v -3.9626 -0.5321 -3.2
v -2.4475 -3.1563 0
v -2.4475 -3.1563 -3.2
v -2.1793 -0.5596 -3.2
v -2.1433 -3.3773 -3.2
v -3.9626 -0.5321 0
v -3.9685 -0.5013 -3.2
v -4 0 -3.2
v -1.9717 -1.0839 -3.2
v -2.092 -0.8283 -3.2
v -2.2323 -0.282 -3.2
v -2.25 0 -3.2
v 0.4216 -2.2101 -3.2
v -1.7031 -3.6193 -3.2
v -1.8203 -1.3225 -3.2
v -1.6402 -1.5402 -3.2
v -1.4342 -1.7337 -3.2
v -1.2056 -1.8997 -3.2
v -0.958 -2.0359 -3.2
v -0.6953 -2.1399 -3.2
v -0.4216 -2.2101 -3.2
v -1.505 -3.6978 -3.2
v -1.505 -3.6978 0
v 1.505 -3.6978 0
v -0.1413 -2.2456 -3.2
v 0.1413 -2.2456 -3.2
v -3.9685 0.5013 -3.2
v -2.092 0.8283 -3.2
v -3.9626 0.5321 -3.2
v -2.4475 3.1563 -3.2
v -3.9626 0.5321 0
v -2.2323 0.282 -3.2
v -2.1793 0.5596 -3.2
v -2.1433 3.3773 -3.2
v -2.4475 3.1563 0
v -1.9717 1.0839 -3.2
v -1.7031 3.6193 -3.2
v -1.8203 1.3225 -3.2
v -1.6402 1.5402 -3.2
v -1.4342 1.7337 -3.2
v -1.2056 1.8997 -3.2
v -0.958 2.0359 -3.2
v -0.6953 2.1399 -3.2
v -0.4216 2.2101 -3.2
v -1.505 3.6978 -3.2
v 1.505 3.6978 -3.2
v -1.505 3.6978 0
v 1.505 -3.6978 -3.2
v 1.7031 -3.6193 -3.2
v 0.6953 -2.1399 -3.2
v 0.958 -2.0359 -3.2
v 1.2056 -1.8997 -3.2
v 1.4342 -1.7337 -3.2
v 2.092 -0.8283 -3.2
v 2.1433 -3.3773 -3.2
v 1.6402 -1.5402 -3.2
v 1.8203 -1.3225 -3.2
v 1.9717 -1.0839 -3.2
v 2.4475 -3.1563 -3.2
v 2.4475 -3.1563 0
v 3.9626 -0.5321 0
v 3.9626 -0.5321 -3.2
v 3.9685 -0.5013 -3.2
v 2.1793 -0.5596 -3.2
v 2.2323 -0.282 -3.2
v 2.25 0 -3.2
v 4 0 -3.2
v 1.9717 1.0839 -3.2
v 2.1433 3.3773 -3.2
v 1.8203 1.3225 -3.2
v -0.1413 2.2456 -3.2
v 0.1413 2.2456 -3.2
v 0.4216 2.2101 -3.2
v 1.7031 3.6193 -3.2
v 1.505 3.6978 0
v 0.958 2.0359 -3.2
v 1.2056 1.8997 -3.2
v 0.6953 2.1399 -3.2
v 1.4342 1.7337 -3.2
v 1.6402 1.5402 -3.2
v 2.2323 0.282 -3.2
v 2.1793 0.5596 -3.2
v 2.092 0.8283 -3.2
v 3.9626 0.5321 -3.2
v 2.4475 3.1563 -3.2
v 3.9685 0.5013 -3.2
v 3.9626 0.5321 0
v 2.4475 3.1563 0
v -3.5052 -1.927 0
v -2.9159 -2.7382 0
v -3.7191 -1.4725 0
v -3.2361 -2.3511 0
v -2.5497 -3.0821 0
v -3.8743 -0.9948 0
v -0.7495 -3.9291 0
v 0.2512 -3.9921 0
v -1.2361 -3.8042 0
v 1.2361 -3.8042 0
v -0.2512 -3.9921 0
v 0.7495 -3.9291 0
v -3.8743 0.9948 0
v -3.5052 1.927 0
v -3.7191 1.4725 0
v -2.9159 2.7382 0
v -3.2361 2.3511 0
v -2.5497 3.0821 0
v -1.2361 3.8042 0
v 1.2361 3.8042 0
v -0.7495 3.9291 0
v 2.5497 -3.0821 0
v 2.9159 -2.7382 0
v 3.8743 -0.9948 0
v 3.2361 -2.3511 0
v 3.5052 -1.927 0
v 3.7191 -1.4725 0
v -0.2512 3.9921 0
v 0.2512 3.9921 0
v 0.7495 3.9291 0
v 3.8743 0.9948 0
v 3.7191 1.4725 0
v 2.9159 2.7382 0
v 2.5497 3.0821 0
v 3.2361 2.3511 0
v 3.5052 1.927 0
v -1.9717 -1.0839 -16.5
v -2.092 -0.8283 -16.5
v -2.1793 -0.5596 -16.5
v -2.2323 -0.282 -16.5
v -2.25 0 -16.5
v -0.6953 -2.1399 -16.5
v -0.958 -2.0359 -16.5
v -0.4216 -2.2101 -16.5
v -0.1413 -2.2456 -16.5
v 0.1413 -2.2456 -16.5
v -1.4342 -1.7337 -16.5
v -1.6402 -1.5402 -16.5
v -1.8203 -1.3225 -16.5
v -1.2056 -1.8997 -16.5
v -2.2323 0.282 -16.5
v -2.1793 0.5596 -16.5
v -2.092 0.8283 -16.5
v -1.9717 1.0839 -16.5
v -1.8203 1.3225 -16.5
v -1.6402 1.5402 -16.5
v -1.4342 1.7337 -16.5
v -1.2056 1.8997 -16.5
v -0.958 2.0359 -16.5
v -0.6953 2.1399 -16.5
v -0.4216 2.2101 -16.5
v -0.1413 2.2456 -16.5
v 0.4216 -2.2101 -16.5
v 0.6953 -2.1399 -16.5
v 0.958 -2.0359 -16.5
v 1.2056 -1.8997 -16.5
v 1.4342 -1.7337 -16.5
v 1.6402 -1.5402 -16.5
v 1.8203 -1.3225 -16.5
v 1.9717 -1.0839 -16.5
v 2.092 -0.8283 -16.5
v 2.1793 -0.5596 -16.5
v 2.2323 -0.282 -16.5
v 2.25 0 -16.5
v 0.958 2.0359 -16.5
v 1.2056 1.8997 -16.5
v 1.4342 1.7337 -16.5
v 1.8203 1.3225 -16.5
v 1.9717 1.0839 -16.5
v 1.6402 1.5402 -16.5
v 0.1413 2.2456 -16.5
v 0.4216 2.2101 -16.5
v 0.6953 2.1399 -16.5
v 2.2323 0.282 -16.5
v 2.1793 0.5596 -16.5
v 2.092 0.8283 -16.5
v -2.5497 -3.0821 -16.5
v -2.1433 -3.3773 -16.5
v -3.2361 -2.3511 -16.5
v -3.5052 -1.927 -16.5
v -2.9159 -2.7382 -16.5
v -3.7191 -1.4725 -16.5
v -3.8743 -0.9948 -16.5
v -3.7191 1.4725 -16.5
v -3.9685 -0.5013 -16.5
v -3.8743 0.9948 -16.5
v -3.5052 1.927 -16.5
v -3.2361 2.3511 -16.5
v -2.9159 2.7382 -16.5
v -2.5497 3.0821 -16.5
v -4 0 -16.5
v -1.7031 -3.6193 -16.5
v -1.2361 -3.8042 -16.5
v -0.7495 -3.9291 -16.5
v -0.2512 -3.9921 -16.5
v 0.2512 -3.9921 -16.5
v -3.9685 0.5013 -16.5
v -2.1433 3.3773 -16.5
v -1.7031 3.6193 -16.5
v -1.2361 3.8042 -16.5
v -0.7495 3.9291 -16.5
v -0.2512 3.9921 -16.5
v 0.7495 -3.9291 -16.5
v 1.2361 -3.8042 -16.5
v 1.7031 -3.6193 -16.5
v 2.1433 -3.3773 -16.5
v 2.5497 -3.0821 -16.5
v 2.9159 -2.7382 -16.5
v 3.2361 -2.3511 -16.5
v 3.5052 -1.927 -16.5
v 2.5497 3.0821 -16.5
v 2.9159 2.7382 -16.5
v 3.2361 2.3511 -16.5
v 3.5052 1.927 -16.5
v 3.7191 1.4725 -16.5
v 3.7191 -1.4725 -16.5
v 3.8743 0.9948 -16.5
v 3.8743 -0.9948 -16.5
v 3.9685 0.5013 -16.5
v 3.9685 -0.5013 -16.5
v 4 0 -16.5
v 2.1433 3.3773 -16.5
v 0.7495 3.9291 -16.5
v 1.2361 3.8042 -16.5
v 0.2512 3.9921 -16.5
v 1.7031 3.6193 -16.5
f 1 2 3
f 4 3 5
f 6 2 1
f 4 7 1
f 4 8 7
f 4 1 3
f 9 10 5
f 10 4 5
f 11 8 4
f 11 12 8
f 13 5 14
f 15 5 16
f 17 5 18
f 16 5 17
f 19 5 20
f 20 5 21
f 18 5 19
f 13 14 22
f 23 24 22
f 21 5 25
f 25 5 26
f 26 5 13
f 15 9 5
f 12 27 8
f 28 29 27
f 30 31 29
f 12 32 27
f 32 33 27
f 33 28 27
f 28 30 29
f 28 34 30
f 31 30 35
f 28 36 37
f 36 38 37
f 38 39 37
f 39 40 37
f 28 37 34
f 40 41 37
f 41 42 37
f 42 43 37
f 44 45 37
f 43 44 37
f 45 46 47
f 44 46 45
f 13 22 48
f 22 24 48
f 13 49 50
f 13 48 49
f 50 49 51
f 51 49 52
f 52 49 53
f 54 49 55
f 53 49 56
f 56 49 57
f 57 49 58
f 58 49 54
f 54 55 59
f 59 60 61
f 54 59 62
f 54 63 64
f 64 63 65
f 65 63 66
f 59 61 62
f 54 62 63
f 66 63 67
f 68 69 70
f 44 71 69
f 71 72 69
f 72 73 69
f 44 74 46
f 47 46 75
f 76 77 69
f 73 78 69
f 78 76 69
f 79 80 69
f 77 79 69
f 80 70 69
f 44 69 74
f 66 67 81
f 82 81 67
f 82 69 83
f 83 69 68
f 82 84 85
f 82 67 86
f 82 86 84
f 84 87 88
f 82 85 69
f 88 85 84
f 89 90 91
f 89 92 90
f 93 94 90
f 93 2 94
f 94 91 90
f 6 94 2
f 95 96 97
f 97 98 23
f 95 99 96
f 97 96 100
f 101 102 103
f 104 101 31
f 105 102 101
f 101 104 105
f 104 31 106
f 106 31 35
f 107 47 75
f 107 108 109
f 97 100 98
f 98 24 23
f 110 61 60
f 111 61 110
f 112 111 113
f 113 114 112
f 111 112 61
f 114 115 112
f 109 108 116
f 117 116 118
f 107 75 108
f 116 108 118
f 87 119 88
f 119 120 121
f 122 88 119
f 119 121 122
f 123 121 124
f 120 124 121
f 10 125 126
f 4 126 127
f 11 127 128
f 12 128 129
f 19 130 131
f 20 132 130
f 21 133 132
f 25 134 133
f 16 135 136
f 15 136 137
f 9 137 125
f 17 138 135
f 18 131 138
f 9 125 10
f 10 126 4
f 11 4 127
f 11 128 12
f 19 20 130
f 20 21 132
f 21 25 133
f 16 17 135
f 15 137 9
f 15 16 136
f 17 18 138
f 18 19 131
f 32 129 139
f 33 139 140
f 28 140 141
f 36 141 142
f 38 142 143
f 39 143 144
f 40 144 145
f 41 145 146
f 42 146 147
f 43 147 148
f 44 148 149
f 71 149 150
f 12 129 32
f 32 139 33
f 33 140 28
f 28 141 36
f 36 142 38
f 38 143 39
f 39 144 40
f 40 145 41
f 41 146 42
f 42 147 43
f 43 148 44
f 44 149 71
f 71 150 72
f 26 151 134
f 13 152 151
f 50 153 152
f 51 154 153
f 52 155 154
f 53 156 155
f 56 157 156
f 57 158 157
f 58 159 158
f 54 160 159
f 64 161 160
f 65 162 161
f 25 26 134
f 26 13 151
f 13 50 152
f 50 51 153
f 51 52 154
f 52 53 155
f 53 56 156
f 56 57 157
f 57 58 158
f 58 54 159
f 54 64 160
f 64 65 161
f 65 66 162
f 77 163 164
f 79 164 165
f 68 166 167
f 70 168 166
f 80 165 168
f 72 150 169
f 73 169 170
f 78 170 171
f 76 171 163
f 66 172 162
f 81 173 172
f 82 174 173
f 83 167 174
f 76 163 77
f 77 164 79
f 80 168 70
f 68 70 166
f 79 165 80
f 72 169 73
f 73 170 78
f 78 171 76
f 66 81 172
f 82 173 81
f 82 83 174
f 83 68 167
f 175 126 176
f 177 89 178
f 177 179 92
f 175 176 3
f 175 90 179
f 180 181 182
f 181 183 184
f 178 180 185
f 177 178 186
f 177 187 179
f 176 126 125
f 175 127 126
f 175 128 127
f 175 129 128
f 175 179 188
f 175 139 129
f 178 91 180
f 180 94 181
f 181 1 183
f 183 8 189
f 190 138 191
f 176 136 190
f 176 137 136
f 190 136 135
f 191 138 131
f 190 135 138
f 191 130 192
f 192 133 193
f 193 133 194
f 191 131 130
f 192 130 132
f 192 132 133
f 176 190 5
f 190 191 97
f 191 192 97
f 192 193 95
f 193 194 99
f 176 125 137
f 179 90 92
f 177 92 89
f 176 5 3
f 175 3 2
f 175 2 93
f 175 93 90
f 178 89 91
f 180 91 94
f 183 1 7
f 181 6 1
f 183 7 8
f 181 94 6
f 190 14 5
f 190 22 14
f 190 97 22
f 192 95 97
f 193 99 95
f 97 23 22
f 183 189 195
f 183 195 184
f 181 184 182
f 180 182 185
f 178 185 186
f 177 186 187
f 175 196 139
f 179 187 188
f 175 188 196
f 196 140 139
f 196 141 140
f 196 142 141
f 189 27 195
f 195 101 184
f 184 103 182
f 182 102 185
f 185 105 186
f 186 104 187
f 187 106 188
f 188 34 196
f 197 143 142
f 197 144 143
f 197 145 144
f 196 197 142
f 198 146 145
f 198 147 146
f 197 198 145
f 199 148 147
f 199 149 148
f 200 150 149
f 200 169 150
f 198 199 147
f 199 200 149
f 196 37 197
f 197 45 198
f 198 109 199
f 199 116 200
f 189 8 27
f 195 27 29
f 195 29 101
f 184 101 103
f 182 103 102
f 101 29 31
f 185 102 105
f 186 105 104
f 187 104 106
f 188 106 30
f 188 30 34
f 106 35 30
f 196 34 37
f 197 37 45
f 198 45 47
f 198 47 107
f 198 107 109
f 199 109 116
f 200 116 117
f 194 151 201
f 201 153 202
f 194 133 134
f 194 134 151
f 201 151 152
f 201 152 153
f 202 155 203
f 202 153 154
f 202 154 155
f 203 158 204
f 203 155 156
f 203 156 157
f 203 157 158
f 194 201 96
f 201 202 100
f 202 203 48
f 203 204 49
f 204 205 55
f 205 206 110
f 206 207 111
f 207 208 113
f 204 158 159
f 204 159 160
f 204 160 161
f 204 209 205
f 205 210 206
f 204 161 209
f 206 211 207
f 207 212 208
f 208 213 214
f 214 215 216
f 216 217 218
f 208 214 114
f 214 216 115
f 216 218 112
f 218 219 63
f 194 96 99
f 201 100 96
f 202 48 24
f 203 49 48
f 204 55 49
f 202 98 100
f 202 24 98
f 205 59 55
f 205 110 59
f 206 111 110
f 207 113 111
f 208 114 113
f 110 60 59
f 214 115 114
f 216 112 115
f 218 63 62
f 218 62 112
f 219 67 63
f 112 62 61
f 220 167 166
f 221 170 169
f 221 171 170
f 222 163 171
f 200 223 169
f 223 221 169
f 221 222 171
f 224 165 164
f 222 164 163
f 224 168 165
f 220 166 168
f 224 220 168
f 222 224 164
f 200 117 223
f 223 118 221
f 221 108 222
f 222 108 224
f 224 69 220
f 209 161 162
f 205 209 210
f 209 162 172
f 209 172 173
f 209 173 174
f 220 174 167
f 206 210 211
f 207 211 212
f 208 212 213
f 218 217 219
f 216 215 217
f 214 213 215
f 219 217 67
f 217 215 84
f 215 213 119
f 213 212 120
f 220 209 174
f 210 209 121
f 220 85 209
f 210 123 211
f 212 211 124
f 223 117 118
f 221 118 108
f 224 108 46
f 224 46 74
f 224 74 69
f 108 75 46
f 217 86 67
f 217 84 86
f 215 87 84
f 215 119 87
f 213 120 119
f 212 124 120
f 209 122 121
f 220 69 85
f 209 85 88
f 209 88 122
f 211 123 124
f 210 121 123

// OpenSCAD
$fn = 50;

difference() {
	union() {
		translate(v = [0, 0, -16.5]) {
			cylinder(h = 19.5, r = 4.0);
		}
	}
	union() {
		translate(v = [0, 0, 0]) {
			rotate(a = [0, 0, 0]) {
				difference() {
					union() {
						translate(v = [0, 0, -3.2]) {
							linear_extrude(height = 3.2) {
								polygon(points = [[4.2698, 0.0], [2.1349000000000005, 3.697755269078796], [-2.134899999999999, 3.6977552690787965], [-4.2698, 5.228996902999369e-16], [-2.134900000000002, -3.6977552690787956], [2.1348999999999974, -3.697755269078798]]);
							}
						}
					}
					union();
				}
			}
		}
		#cylinder(h = 3, r = 5.0);
		#translate(v = [0, 0, -100.0]) {
			cylinder(h = 200, r = 2.25);
		}
	}
}
